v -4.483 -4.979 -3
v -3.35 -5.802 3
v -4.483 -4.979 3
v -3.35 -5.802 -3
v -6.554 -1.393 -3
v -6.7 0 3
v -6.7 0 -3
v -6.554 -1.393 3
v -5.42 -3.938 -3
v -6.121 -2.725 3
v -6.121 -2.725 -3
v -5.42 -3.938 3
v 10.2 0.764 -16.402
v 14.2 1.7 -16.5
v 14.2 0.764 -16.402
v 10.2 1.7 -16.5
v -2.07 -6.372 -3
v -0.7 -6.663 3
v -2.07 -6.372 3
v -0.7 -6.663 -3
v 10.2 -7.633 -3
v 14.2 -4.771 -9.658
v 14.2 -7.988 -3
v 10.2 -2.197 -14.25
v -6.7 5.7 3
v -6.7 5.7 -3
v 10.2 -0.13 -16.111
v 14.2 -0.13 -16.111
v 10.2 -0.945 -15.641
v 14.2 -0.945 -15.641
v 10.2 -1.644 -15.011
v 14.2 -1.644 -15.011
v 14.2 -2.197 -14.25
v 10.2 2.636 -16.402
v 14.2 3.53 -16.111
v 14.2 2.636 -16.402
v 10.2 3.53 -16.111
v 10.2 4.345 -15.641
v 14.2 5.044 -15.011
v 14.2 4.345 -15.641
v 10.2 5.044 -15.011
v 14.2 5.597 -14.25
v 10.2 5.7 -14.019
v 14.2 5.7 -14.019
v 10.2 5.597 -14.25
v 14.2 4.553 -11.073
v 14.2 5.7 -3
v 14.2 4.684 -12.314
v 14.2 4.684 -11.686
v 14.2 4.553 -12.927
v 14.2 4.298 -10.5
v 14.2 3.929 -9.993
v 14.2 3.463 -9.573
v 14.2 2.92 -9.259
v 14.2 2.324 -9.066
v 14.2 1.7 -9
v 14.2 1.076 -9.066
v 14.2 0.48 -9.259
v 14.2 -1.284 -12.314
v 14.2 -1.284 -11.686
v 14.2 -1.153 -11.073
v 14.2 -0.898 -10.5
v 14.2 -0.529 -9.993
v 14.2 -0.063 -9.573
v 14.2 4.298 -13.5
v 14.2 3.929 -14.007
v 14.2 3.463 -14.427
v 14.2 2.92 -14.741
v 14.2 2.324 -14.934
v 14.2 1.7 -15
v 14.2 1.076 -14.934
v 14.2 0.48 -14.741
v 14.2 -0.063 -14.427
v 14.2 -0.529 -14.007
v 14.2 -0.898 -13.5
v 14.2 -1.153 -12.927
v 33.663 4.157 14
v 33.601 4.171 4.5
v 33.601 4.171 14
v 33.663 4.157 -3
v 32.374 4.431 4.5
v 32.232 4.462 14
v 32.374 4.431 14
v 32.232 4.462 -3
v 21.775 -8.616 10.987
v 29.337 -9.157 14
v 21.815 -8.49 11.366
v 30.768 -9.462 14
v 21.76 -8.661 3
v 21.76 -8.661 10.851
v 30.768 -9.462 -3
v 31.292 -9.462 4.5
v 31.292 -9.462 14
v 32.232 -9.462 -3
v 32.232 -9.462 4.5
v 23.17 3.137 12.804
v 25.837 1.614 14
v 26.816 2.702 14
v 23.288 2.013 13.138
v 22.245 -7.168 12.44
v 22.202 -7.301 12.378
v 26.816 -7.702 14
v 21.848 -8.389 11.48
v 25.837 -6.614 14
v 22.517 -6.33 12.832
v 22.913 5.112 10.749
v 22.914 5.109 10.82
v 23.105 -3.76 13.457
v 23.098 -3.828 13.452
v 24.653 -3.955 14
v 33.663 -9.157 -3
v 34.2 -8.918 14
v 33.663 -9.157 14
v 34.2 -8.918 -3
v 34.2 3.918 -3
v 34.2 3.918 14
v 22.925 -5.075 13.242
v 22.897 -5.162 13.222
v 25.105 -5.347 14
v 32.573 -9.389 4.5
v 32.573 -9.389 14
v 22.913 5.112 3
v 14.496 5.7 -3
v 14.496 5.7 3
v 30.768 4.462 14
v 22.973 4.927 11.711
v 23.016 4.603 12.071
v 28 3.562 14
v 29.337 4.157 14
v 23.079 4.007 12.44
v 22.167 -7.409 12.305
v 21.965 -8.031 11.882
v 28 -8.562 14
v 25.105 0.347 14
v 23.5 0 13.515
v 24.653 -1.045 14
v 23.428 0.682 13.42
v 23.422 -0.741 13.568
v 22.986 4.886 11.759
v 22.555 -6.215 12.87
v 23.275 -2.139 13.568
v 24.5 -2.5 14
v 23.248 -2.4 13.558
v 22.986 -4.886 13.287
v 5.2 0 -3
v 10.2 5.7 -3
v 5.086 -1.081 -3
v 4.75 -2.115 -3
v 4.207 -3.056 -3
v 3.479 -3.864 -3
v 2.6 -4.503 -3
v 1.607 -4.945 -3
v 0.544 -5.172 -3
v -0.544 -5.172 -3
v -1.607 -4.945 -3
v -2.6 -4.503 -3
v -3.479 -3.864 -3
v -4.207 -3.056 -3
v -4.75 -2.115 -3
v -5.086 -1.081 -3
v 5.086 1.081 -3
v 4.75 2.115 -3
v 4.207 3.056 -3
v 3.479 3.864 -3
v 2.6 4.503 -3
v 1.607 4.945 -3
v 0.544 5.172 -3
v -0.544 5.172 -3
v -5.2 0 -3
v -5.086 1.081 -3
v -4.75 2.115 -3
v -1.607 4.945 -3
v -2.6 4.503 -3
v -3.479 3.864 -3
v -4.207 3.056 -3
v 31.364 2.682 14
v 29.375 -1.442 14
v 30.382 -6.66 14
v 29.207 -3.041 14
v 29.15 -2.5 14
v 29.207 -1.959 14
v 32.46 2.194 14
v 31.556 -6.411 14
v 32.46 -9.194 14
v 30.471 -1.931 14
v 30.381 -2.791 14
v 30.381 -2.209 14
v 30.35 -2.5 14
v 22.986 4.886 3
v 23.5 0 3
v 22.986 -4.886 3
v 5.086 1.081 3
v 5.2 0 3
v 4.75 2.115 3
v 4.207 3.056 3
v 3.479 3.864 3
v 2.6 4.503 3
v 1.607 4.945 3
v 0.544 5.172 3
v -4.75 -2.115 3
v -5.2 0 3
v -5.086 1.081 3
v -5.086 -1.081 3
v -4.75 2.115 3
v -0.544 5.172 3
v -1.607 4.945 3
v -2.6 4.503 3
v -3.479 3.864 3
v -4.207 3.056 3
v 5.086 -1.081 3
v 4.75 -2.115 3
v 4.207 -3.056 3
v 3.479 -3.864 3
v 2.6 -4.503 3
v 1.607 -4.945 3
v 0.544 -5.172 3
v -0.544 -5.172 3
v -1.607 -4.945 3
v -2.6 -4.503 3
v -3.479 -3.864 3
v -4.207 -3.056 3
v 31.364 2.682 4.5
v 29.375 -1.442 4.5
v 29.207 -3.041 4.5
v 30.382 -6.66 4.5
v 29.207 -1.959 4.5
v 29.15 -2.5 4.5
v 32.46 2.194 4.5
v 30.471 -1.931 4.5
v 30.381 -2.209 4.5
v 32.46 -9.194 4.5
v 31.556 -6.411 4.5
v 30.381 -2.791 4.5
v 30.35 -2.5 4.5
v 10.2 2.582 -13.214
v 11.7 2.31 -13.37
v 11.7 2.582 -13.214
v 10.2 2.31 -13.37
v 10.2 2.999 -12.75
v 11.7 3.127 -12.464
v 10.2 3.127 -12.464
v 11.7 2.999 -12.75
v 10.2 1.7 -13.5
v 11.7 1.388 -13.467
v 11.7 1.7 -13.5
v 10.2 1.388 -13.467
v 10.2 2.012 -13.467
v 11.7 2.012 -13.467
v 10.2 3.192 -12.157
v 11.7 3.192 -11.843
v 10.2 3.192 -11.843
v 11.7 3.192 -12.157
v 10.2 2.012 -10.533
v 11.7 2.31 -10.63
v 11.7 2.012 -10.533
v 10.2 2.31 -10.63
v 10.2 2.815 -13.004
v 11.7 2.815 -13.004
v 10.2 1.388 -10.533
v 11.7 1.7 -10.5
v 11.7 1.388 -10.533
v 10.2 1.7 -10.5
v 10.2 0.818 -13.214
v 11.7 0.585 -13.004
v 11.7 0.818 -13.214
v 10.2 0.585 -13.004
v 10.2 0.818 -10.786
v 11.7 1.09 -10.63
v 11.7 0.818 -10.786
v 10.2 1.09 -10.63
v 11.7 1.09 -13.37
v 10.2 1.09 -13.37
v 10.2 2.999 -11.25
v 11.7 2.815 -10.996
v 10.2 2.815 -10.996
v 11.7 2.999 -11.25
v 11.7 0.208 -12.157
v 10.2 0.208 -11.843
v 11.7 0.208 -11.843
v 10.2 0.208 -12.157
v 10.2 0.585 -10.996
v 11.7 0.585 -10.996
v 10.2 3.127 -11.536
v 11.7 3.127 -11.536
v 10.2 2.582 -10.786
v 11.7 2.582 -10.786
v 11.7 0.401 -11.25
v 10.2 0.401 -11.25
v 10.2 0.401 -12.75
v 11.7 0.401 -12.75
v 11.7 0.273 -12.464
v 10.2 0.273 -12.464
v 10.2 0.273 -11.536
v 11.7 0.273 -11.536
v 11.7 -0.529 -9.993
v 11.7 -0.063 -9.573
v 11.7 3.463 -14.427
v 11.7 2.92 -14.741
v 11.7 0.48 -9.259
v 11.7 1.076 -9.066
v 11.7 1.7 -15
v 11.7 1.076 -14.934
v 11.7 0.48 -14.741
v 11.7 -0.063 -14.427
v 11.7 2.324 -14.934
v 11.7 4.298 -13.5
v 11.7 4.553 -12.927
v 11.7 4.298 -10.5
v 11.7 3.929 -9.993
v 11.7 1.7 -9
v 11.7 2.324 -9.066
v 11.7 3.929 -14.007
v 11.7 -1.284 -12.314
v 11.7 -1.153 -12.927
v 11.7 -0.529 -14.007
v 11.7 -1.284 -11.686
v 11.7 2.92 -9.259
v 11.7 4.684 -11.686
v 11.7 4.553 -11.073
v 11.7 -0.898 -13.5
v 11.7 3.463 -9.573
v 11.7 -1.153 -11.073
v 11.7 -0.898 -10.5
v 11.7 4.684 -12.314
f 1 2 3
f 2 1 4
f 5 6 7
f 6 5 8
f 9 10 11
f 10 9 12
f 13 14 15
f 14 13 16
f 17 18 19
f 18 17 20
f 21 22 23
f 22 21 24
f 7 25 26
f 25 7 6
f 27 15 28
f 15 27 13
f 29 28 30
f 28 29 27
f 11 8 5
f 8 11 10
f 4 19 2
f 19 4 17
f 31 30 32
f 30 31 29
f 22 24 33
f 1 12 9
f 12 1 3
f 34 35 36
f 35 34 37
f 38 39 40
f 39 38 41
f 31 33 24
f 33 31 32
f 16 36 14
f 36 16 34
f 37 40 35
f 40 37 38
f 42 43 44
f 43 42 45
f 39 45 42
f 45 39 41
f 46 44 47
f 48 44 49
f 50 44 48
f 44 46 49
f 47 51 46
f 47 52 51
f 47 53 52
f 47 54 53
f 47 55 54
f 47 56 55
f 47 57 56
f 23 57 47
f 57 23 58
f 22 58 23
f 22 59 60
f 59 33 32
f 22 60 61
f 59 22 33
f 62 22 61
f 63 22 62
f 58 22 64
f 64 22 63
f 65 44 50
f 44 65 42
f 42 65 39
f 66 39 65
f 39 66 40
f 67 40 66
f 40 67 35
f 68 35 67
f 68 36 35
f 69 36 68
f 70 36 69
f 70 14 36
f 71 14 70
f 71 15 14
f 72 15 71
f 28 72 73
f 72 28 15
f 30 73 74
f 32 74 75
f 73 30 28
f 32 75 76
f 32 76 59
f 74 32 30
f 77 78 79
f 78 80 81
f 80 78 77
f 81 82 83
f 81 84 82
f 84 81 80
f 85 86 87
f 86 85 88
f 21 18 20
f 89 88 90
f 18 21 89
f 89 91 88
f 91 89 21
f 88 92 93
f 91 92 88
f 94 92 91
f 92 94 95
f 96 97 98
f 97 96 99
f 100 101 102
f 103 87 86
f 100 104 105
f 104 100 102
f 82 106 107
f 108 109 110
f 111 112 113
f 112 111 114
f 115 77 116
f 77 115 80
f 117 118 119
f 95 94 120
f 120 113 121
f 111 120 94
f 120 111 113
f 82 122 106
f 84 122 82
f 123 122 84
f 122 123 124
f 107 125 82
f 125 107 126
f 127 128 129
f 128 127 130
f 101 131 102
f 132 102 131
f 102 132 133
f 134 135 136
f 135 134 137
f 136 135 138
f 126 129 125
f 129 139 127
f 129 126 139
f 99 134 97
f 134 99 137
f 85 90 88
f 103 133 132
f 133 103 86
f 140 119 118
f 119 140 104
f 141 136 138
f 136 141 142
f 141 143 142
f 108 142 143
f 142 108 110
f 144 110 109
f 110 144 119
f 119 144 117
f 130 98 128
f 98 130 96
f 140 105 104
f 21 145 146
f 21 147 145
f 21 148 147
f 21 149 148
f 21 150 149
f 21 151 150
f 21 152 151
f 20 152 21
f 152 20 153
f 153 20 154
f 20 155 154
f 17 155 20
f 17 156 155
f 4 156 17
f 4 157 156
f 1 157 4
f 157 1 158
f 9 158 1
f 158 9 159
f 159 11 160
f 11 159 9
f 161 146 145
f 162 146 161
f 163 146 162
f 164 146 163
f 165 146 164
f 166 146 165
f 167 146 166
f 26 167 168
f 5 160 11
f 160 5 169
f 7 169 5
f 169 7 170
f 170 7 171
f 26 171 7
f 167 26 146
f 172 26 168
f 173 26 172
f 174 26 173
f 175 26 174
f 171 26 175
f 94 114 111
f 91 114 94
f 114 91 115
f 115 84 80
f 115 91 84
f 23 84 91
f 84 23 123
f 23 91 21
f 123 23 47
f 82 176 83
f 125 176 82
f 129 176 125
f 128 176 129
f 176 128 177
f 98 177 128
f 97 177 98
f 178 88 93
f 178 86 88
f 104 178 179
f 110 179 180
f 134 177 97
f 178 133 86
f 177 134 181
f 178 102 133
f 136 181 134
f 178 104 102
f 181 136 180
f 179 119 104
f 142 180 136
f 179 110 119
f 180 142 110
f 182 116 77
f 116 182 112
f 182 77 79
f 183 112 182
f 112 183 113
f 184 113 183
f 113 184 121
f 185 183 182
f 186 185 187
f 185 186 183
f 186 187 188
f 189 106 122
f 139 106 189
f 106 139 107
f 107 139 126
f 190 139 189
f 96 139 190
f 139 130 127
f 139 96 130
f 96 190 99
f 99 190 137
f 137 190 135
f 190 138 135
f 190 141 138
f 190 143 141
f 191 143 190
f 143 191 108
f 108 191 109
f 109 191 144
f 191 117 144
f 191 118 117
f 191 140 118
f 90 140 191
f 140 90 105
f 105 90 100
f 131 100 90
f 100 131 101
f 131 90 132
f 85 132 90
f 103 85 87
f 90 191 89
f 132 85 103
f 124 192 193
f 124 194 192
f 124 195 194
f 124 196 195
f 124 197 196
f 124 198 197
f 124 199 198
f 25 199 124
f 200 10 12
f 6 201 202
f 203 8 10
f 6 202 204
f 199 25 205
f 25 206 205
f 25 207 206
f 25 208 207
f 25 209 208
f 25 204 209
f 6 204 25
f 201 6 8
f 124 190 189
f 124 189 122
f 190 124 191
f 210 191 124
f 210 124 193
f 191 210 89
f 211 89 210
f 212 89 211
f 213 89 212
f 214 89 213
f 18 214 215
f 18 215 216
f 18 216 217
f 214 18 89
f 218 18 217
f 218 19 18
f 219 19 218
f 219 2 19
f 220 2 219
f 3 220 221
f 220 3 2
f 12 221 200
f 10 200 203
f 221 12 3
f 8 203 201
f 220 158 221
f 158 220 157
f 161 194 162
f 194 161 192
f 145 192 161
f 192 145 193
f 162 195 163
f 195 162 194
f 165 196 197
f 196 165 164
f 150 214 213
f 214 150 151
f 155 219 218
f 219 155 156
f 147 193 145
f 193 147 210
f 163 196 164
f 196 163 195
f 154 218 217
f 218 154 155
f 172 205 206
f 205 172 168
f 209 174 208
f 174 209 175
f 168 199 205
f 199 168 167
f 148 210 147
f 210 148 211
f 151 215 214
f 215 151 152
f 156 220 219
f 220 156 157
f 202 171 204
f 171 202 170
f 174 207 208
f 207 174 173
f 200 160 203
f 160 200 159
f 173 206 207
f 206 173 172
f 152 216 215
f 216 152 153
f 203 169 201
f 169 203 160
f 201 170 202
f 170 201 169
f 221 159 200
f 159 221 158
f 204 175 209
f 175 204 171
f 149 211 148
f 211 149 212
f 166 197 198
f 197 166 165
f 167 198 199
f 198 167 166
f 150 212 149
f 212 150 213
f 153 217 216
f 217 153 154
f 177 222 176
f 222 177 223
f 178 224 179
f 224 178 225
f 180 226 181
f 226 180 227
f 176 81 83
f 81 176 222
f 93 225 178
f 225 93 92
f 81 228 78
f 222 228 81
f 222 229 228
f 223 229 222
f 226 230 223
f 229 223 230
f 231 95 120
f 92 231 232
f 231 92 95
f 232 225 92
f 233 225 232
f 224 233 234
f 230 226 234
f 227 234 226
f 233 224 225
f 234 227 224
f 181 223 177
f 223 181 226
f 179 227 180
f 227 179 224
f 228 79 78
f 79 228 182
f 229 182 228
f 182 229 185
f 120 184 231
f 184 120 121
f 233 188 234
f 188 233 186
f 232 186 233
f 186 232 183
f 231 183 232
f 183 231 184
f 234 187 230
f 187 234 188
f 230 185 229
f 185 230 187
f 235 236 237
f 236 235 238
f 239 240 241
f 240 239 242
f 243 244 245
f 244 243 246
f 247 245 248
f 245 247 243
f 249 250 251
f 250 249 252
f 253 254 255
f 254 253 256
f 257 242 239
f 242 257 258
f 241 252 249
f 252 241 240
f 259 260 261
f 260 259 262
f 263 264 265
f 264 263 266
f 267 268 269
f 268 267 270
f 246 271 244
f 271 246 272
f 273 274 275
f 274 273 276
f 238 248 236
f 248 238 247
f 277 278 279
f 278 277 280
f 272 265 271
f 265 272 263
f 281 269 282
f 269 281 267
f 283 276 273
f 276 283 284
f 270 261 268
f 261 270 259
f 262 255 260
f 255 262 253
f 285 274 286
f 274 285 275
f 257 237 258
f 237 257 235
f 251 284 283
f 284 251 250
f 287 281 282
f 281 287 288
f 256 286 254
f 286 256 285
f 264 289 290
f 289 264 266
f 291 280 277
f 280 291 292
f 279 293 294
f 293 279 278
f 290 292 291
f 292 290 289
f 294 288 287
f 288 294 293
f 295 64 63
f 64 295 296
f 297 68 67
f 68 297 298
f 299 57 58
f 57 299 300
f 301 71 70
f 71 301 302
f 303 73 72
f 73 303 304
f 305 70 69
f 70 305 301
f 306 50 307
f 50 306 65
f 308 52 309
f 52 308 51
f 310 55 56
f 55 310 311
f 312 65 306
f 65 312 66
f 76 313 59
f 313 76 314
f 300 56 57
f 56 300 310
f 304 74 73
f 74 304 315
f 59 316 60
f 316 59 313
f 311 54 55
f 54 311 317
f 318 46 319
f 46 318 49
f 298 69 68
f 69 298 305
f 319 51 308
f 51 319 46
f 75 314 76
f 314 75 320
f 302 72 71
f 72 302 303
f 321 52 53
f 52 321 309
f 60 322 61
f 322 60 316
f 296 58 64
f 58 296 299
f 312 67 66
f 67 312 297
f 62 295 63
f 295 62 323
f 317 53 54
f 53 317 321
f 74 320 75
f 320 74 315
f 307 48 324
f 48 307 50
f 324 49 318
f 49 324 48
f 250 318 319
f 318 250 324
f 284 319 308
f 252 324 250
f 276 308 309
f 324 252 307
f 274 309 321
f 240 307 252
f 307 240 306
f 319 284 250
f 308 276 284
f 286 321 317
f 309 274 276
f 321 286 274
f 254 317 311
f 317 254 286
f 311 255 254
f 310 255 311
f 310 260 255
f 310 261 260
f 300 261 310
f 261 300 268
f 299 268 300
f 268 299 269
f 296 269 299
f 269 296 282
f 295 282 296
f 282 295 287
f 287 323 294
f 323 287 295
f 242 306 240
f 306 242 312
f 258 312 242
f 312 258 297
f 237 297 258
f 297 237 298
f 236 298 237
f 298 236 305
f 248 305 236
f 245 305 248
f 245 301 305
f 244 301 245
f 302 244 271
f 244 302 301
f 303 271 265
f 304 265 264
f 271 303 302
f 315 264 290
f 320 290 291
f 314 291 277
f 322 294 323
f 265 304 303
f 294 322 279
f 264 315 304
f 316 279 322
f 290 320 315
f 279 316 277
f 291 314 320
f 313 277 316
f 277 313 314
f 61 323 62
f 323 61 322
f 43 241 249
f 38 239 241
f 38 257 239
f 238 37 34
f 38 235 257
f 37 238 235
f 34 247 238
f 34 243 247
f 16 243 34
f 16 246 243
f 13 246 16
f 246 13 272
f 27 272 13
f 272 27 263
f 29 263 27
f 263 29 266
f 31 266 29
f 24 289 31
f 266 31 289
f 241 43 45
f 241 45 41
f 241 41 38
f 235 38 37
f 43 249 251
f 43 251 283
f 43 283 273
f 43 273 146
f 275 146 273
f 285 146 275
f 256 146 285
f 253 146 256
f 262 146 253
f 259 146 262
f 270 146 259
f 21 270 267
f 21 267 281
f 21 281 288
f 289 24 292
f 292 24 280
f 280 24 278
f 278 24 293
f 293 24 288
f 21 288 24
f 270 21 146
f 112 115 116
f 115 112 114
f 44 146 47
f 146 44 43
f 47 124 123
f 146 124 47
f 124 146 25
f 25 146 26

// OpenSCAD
include <mount.scad>

vslot_mini_belt_plate(extra_slot_offset = [ 20, -3 ]);
